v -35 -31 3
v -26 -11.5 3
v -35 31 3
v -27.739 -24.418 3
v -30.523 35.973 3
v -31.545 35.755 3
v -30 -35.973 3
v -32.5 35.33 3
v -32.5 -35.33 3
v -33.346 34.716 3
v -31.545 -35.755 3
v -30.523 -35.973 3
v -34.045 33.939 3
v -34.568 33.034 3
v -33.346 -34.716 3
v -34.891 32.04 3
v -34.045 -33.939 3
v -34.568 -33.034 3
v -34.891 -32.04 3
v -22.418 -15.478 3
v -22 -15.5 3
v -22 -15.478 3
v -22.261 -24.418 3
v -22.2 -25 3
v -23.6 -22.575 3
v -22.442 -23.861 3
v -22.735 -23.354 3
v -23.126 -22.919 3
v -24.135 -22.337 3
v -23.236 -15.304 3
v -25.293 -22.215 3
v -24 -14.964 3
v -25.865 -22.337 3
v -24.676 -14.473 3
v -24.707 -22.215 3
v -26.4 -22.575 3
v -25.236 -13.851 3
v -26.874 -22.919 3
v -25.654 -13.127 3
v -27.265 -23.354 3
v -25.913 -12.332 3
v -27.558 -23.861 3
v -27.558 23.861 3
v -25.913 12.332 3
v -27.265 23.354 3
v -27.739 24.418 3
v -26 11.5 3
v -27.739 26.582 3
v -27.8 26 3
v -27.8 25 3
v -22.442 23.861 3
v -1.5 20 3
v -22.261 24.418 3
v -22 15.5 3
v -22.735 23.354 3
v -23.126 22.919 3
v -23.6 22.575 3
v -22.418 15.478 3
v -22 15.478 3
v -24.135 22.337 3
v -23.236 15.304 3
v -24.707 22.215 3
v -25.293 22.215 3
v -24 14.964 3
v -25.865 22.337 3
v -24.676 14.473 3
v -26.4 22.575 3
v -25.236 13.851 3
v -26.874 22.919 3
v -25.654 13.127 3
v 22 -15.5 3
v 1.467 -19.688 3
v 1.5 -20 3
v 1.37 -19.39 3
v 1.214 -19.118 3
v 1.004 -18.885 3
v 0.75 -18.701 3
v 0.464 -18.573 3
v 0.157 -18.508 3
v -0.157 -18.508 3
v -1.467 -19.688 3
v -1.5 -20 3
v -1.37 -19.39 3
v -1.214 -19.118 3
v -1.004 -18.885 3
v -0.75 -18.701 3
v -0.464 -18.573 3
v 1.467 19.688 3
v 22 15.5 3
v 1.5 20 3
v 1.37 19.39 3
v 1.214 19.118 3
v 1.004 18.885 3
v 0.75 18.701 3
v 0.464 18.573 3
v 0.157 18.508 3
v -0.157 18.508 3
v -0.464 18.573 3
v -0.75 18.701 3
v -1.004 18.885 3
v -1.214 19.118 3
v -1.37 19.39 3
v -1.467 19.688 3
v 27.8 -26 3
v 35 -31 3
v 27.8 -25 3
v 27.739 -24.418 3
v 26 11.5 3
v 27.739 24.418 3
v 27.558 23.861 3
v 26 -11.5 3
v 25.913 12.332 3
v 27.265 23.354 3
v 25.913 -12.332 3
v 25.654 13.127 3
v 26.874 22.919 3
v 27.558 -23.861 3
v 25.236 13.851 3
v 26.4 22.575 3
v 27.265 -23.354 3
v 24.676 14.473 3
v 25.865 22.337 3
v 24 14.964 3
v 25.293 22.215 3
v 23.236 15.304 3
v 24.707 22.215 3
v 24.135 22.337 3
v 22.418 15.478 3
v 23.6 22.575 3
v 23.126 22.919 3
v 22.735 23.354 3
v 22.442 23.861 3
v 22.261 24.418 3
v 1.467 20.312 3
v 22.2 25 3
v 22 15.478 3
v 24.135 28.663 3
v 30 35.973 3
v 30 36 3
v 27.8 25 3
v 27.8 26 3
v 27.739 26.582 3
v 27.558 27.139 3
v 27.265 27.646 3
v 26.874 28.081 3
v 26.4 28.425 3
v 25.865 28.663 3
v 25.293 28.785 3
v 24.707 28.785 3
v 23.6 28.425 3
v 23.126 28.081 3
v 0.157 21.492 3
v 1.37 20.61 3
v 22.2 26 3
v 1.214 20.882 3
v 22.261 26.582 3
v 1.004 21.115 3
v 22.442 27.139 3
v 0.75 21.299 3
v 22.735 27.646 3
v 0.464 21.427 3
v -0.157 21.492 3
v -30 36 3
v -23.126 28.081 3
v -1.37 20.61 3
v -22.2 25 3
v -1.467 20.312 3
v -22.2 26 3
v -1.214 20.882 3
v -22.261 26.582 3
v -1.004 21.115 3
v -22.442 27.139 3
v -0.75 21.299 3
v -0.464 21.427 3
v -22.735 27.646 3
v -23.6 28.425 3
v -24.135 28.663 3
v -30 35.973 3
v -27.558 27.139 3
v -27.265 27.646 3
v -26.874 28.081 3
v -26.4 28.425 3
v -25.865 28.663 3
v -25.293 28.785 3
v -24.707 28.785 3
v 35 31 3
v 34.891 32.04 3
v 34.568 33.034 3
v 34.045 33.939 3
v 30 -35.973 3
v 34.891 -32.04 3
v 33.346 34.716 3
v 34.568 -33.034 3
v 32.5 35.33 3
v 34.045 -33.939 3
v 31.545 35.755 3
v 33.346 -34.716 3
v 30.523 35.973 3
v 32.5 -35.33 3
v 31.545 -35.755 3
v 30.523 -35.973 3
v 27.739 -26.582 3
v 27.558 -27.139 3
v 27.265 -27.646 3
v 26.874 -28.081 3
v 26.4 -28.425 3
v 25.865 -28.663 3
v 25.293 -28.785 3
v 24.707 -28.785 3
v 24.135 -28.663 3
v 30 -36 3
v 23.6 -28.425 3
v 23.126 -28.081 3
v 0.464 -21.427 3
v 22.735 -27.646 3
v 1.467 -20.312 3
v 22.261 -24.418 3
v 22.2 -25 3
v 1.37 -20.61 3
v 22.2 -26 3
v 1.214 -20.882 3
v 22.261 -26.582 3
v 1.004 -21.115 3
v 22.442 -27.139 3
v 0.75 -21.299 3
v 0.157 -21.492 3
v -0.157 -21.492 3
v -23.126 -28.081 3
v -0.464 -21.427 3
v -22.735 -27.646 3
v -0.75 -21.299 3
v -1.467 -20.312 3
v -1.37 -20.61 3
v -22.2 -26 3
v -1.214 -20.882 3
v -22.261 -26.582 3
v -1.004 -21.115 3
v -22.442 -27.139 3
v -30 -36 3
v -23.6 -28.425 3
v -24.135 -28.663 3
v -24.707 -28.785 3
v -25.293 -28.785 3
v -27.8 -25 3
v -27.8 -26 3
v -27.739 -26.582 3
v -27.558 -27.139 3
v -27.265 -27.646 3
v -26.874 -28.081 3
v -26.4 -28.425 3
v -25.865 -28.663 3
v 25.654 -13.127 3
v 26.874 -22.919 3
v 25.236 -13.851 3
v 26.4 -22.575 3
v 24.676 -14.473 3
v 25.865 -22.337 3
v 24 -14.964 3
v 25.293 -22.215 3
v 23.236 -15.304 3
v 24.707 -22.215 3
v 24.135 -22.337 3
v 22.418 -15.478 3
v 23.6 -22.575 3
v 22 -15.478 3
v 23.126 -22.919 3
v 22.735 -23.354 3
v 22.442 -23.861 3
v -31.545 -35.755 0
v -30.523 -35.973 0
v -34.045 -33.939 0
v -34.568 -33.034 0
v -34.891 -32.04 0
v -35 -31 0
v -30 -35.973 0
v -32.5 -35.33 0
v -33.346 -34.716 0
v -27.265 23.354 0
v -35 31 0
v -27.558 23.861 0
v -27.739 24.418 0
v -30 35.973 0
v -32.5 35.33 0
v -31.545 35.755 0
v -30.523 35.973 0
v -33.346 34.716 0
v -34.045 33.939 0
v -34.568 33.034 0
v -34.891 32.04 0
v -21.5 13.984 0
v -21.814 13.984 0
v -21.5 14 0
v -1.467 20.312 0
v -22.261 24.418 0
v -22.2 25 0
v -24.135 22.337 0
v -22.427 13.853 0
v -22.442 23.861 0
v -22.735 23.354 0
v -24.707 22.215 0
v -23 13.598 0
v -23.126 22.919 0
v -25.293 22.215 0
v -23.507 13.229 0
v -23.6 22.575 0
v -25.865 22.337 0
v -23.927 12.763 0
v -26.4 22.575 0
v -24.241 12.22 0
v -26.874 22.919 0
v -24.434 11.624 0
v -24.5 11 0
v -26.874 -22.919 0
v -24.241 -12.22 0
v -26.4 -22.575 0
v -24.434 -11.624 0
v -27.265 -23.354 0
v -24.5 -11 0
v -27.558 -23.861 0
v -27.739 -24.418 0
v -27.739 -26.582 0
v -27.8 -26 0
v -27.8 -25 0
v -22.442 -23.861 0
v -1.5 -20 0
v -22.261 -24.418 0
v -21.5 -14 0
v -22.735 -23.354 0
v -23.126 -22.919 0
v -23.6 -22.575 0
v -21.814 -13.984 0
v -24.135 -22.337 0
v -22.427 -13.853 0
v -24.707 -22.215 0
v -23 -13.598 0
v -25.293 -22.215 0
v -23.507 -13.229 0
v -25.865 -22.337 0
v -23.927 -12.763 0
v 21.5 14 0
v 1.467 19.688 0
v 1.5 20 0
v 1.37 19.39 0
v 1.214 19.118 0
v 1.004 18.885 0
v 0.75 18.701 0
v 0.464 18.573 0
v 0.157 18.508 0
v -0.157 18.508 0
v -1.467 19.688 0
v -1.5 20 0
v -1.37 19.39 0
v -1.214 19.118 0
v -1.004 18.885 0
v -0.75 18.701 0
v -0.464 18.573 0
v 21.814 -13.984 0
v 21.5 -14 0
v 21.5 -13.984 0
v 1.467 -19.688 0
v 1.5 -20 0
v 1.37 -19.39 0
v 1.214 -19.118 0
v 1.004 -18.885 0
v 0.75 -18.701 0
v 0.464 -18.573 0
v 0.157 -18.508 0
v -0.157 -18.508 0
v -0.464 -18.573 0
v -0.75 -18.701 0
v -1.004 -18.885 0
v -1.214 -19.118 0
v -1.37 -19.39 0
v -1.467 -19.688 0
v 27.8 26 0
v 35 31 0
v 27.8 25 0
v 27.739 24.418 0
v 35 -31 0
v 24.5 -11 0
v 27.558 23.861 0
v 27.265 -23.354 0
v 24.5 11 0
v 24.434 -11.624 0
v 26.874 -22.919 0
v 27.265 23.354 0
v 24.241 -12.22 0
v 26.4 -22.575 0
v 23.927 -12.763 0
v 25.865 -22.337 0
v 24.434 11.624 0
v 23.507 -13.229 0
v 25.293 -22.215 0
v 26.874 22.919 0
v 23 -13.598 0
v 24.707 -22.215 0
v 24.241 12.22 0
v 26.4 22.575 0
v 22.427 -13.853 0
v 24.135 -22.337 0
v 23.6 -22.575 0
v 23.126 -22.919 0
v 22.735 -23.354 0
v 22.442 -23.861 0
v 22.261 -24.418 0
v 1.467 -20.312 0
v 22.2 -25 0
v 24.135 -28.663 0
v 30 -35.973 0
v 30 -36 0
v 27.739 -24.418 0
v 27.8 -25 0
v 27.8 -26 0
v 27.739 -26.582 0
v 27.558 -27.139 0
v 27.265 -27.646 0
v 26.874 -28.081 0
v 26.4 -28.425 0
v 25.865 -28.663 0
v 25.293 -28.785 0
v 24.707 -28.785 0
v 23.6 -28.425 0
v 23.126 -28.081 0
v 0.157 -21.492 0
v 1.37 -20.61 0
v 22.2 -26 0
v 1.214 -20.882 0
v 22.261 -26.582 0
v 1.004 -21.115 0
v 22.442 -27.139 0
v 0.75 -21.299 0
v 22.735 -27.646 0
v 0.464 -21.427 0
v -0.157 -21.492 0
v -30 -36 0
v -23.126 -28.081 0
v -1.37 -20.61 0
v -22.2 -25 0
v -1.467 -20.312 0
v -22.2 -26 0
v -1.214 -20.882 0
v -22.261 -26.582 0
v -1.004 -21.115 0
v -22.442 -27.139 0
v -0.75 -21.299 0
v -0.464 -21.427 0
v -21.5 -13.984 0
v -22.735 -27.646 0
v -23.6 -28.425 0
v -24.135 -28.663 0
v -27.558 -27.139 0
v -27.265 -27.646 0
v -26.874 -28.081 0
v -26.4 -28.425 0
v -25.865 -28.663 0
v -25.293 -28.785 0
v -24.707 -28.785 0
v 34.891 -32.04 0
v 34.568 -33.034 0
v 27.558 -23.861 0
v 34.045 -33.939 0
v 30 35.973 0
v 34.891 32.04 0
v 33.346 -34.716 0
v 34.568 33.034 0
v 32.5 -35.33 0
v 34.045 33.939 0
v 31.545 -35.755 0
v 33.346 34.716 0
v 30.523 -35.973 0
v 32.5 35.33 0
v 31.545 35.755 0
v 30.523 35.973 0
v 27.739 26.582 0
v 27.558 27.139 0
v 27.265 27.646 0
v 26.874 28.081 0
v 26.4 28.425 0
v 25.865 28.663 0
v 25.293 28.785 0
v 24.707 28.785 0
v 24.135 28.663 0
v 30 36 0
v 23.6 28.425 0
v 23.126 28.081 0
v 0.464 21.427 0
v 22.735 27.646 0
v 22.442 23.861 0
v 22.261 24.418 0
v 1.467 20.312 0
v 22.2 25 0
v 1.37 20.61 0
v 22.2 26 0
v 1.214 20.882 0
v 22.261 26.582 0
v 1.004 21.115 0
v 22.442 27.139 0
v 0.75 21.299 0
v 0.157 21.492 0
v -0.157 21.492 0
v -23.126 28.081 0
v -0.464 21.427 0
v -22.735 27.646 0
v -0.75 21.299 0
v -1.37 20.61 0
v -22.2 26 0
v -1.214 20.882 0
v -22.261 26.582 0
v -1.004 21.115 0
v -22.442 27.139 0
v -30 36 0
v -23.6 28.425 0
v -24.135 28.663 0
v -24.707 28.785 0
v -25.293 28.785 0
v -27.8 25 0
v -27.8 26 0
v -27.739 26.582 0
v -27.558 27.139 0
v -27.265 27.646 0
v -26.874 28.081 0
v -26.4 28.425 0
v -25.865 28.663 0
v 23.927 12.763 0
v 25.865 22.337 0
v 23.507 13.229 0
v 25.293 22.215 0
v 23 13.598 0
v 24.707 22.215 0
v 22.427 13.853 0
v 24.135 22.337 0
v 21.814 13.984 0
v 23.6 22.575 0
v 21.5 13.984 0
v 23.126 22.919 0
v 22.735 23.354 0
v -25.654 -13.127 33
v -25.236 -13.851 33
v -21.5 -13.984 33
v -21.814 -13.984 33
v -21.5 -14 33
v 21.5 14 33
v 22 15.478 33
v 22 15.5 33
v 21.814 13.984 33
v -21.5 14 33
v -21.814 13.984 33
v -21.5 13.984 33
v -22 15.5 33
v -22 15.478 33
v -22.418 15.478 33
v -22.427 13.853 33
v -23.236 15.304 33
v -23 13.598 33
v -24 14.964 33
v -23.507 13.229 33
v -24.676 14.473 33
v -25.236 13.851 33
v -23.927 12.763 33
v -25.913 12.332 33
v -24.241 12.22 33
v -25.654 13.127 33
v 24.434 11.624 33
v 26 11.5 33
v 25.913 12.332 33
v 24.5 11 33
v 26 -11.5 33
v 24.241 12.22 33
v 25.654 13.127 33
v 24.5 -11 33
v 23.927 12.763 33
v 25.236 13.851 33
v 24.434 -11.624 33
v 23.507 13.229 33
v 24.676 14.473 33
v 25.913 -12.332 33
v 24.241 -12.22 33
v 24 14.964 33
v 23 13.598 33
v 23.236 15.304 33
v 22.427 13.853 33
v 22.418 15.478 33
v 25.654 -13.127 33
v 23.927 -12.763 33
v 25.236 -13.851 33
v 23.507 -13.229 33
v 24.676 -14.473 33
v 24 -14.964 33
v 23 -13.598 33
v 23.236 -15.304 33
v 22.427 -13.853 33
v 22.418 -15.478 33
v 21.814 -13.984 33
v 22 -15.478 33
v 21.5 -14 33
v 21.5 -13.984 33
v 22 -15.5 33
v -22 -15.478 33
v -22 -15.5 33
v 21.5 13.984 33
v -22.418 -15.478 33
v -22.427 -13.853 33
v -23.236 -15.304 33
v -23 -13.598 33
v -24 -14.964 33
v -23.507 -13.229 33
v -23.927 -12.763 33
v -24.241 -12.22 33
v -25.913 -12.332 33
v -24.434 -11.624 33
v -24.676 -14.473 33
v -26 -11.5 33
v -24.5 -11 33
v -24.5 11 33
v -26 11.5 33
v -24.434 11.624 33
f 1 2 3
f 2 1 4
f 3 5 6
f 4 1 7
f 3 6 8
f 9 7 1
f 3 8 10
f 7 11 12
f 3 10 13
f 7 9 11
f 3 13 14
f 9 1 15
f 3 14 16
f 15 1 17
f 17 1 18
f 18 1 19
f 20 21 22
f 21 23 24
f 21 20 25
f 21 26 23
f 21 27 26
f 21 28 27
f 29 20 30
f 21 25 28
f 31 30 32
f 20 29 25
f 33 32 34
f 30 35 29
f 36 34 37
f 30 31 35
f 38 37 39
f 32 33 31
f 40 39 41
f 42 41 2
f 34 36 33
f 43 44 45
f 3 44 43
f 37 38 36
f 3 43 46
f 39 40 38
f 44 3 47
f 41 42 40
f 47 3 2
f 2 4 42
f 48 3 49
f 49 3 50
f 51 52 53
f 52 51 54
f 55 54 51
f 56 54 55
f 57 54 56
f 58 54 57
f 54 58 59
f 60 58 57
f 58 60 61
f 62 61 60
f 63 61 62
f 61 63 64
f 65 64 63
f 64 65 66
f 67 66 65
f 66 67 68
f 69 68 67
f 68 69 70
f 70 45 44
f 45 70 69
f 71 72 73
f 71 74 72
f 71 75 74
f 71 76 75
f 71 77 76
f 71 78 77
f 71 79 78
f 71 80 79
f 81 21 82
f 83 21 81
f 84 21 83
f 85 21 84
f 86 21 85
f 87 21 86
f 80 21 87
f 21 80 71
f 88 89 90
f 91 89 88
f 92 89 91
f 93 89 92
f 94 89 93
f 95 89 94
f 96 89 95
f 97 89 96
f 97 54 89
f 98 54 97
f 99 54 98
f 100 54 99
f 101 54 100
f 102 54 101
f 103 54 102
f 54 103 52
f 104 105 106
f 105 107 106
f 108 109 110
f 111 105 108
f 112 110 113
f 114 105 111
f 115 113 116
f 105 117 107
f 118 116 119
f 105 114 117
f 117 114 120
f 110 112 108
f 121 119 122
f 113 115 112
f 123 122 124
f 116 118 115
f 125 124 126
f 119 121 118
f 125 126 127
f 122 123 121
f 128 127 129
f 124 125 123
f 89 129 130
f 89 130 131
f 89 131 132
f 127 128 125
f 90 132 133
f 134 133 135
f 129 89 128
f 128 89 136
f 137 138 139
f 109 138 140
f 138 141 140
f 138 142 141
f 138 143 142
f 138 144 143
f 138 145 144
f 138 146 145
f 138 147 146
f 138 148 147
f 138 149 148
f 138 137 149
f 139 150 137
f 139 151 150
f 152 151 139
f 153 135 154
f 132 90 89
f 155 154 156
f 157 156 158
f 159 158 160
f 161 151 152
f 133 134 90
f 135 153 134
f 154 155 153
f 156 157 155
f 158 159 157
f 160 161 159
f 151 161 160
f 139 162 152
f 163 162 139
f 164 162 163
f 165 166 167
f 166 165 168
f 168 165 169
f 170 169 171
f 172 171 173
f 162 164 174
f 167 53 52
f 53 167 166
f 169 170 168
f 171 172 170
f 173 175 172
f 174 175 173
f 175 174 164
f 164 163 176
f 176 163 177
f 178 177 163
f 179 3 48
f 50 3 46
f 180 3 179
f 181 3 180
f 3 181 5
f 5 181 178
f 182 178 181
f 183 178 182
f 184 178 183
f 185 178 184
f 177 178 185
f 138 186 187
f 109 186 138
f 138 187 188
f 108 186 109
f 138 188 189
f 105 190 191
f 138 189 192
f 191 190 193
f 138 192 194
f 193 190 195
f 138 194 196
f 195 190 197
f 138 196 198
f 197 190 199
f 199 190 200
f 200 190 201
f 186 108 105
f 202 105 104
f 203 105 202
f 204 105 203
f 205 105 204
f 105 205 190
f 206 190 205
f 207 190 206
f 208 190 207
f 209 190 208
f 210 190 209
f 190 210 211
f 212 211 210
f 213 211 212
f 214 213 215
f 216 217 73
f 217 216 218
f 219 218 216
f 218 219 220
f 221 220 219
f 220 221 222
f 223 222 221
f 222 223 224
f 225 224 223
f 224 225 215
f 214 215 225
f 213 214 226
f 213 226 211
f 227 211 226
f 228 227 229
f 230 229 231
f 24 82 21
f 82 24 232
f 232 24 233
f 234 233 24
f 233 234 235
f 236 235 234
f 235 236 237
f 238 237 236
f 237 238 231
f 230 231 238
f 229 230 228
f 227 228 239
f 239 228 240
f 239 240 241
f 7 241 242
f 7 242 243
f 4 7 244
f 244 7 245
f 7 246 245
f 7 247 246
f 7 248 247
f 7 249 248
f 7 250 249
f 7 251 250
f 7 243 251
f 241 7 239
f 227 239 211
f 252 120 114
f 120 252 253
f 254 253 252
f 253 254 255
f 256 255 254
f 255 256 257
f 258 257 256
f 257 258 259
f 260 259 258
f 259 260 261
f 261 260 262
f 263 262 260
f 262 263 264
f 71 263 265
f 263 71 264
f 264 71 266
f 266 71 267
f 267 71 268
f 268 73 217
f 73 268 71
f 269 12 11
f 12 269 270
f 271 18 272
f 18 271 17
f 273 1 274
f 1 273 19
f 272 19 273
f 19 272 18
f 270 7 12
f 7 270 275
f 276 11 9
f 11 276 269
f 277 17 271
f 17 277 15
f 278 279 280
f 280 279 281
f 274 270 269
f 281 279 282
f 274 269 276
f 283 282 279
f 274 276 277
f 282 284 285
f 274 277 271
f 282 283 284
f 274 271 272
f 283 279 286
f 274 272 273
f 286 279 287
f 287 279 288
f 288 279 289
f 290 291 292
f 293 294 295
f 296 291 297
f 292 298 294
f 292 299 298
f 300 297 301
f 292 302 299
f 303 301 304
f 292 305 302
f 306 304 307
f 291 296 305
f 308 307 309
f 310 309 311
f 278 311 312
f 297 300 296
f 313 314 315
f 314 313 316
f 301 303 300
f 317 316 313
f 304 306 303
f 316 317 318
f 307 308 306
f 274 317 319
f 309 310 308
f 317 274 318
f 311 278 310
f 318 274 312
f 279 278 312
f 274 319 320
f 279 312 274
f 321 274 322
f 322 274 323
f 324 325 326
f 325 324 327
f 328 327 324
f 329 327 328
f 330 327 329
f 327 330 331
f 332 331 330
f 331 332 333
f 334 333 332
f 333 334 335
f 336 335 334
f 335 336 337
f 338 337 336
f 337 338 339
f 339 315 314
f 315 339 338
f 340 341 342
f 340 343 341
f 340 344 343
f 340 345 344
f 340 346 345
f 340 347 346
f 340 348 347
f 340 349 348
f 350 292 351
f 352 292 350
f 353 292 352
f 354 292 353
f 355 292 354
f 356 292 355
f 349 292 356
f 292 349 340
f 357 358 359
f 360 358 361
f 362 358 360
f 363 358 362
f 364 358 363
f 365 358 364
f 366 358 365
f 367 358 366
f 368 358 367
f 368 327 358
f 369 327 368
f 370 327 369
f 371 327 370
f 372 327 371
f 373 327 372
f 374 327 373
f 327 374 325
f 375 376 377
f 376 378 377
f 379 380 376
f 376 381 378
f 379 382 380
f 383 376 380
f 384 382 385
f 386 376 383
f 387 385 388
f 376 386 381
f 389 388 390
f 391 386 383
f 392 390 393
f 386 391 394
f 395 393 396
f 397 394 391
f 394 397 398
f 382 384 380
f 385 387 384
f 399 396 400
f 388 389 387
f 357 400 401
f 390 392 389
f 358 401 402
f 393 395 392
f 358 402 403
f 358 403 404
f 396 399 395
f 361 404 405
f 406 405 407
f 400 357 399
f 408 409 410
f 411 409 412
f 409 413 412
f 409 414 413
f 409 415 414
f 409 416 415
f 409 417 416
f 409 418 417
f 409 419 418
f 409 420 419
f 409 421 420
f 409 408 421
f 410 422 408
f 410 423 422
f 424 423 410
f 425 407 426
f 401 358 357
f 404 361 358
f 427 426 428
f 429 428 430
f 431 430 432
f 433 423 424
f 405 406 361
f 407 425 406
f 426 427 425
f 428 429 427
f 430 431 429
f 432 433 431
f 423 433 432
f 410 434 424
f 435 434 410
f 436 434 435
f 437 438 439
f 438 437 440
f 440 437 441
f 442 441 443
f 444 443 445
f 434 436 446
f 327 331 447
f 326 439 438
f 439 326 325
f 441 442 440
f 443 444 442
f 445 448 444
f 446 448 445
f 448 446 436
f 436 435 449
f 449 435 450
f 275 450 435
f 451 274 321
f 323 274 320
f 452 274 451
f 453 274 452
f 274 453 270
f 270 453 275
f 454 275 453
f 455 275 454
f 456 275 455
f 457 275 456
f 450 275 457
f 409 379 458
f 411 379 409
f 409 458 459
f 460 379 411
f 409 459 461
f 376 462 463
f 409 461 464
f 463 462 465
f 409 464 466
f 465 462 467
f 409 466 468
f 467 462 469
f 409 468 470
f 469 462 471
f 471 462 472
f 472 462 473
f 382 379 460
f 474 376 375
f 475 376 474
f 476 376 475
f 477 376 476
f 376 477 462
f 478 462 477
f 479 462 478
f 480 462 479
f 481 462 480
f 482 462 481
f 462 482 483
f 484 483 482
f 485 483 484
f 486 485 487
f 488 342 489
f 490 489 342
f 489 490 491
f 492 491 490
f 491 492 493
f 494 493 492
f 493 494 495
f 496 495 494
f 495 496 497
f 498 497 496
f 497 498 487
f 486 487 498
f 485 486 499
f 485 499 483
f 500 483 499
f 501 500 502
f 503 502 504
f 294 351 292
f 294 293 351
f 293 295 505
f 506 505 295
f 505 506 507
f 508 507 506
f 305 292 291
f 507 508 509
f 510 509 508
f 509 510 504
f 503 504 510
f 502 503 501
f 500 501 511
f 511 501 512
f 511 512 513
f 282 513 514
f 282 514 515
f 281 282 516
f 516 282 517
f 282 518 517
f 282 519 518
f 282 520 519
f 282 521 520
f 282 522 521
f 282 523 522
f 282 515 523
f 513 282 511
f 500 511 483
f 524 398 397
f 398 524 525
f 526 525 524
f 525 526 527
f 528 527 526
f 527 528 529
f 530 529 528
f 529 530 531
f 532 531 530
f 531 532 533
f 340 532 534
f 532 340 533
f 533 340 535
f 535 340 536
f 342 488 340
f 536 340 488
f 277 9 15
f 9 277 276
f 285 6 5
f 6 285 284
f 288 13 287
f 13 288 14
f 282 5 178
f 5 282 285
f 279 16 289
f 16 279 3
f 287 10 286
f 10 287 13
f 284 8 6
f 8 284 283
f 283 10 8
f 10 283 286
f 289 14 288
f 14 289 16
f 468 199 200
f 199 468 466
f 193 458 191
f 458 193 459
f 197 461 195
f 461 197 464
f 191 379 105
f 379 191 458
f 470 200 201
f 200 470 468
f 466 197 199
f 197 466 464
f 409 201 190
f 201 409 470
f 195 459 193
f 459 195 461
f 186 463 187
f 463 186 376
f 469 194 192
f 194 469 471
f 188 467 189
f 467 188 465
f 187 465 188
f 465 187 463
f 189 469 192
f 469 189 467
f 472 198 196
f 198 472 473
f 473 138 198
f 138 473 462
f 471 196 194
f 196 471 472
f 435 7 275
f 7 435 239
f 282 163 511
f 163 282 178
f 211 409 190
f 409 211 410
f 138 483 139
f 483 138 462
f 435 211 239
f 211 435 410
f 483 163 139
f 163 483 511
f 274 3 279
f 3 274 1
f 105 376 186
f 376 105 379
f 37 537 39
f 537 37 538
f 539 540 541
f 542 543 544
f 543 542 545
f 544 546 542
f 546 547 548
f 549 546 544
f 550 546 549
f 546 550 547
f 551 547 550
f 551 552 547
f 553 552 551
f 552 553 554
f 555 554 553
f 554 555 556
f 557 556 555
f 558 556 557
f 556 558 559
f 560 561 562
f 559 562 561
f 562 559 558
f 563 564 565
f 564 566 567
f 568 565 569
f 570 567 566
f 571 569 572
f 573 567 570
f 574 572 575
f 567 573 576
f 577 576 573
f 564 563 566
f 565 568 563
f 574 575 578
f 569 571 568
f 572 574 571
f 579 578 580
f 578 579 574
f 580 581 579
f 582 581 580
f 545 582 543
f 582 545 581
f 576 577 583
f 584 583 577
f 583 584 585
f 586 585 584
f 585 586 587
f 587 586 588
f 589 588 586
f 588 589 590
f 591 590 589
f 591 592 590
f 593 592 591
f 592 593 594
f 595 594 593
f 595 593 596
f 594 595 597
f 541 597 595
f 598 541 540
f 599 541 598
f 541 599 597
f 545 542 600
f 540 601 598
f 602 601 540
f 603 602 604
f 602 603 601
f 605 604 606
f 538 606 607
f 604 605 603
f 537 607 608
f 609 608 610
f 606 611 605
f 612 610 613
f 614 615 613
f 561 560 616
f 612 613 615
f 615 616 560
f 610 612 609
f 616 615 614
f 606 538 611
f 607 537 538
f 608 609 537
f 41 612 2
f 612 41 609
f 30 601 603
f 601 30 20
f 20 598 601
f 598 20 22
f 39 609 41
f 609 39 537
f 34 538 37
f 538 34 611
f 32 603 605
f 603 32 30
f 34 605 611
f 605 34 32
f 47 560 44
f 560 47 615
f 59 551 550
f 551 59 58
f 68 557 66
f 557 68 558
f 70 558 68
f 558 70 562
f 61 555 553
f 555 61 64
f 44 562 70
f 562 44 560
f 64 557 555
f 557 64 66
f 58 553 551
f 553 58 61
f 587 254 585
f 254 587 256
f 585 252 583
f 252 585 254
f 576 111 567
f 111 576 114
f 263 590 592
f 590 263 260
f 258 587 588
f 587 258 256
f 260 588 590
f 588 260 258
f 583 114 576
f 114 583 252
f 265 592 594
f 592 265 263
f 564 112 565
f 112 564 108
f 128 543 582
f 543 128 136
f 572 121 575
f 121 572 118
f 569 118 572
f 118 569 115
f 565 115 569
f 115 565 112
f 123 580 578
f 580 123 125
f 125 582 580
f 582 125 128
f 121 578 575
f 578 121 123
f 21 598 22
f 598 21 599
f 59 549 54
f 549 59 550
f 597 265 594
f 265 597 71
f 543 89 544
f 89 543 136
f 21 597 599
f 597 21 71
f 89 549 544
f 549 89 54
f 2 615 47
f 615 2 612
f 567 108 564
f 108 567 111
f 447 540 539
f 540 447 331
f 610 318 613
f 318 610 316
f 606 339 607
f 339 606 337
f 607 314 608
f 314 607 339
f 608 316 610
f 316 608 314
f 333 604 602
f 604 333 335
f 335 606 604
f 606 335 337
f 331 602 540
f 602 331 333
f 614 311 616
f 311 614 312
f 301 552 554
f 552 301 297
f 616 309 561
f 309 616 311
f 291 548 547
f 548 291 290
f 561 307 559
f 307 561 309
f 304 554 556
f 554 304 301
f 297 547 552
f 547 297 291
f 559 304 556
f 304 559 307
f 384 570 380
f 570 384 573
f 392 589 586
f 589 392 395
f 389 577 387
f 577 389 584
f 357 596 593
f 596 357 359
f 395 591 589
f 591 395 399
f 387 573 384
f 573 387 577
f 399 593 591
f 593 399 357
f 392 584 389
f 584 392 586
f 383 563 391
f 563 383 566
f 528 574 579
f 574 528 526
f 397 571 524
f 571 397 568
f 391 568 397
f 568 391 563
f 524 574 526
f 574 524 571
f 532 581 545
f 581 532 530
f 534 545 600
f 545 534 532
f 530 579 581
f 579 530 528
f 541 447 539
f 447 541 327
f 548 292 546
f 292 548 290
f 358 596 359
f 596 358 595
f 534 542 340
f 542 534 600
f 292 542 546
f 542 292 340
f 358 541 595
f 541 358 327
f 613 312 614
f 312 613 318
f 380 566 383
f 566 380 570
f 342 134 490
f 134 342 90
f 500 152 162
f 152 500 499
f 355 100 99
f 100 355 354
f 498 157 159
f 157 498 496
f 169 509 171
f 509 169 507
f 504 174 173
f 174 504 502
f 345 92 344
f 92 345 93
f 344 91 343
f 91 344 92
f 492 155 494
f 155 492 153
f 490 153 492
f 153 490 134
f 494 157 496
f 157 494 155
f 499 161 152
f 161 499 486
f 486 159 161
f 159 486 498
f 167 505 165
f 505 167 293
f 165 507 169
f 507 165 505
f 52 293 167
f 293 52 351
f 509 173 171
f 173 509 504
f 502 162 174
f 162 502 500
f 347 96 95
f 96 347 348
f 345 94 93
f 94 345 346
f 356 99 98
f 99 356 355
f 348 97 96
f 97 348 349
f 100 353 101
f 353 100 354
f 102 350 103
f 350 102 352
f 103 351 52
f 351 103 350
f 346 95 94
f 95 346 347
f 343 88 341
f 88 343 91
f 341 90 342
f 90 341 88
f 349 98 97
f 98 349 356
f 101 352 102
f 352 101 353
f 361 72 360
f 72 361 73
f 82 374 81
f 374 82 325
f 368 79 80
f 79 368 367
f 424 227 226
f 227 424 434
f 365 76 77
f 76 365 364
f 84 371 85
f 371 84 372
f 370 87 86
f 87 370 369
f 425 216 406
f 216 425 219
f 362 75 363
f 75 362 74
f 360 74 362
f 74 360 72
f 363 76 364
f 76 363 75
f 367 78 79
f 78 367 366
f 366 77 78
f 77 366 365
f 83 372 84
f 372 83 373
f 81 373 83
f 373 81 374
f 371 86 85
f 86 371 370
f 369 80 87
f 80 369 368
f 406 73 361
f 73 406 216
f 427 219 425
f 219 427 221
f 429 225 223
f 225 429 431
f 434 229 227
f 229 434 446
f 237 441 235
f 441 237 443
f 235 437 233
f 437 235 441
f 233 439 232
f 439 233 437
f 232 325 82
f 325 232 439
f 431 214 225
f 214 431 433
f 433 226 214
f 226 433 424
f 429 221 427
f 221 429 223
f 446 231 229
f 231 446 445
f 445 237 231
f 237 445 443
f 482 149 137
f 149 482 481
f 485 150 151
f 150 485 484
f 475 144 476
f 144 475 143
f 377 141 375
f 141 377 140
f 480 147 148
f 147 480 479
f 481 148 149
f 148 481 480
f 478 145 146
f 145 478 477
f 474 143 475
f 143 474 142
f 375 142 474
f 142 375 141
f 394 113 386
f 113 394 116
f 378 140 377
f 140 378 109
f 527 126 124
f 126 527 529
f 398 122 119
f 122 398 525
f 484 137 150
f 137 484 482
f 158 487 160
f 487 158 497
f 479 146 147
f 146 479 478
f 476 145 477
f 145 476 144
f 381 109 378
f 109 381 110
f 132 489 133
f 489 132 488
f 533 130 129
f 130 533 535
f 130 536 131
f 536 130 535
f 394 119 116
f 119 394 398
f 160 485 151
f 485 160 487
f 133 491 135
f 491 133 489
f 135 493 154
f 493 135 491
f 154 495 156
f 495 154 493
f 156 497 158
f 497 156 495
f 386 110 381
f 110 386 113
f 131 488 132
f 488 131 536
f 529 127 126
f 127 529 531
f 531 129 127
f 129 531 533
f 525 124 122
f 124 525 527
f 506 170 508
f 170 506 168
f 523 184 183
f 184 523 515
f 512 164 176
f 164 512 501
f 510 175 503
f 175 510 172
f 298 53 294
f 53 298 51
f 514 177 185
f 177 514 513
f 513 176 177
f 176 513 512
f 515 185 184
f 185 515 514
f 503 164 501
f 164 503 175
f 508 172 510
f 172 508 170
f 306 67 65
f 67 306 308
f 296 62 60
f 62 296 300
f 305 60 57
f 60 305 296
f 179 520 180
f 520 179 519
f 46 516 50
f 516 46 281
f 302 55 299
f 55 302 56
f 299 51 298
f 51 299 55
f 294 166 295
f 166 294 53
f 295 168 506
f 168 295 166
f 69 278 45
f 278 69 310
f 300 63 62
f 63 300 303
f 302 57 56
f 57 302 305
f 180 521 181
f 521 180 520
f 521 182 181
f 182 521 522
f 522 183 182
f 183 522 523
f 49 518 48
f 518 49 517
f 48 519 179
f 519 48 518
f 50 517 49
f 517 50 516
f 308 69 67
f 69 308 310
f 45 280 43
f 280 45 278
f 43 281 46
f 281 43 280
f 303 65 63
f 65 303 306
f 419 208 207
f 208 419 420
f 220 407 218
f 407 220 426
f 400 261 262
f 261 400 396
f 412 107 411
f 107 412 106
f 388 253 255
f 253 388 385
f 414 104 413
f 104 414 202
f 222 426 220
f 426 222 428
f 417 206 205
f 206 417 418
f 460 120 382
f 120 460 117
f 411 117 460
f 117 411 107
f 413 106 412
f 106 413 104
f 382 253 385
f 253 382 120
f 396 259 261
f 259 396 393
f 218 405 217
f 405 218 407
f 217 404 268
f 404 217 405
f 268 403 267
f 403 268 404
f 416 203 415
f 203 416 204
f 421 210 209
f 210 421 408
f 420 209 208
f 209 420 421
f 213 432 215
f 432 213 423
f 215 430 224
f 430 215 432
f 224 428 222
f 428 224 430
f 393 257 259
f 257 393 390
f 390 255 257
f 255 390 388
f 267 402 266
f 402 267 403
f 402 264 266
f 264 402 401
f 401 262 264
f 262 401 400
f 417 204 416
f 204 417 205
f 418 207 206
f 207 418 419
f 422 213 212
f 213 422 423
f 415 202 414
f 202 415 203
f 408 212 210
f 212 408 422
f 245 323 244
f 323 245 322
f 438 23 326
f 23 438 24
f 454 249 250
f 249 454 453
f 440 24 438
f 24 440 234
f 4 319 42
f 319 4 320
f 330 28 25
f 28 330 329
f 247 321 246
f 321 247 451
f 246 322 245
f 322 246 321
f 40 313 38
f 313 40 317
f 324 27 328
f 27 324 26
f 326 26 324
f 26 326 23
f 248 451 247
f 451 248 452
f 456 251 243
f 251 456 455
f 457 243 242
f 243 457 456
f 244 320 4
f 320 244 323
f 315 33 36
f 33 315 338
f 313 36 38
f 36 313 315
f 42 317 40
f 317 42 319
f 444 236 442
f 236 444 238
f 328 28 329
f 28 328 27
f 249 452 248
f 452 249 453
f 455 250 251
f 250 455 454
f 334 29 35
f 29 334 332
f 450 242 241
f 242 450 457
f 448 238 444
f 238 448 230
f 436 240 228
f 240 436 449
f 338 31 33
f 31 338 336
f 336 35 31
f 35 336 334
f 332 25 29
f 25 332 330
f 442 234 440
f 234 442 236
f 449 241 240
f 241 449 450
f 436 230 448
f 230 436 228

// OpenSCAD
// file: roundedBox.scad
// size is a vector [x, y, z], always draws from center!
module roundedBox(size, radius=5, sidesonly=true)
{
	rot = [ [0,0,0], [90,0,90], [90,90,0] ];
   	if (sidesonly)
	{
   		cube(size - [2*radius,0,0], true);
      	cube(size - [0,2*radius,0], true);
      	for (x = [radius-size[0]/2, -radius+size[0]/2],
      	     y = [radius-size[1]/2, -radius+size[1]/2])
		{
      		translate([x,y,0])
				cylinder(r=radius, h=size[2], center=true);
        }
    }
	else
	{
   		cube([size[0], size[1]-radius*2, size[2]-radius*2], 
			 center=true);
		cube([size[0]-radius*2, size[1], size[2]-radius*2],
			 center=true);
        cube([size[0]-radius*2, size[1]-radius*2, size[2]],
			 center=true);

        for (axis = [0:2])
		{
      		for (x = [radius-size[axis]/2, -radius+size[axis]/2],
                 y = [ radius-size[(axis+1)%3]/2, 
					  -radius+size[(axis+1)%3]/2])
			{
         		rotate(rot[axis]) 
				translate([x,y,0]) 
                cylinder(h=size[(axis+2)%3]-2*radius, 
					     r=radius, center=true);
			}
		}
   		for (x = [radius-size[0]/2, -radius+size[0]/2],
           y = [radius-size[1]/2, -radius+size[1]/2],
           z = [radius-size[2]/2, -radius+size[2]/2])
		{
      		translate([x,y,z])
      		sphere(radius);
        }
	}
}
// file: configuration.scad
// Configuration file for the Kumu-3D printer.
//
// DO NOT SLICE THIS.
//
// This work is licensed under a Creative Commons Attribution-ShareAlike 4.0
// International License.
// Visit:  http://creativecommons.org/licenses/by-sa/4.0/
//
// Haydn Huntley
// haydn.huntley@gmail.com

// All measurements in mm.
smidge            = 0.1;
mmPerInch         = 25.4;
m3Radius          = (3.0 + 0.2) / 2;
m3LooseRadius     = m3Radius + 0.2;
m3TightRadius     = m3Radius - 0.2;
m3HeadHeight      = 3.0 + 0.2;
m3HeadRadius      = (5.4 + 0.2) / 2;
m3LooseHeadRadius = m3HeadRadius + 0.2;
m3NutRadius       = (6.25 + 0.75) / 2;
m3LooseNutRadius  = (m3NutRadius + 0.1);
m3TightNutRadius  = (m3NutRadius - 0.1);
m3NutHeight		  = 2.4;
m3NylockNutHeight = 4.0;
m3LooseNutHeight  = 2.4+0.2;
nozzleWidth		  = 0.5;
extrusionWidth    = 20.0;
copperPipeRadius  = 16.0/2 - smidge;
m5Radius          = (5.0 + 0.2) / 2;
m5LooseRadius     = m5Radius + 0.2;
m5TightRadius     = m5Radius - 0.2;
m5HeadHeight      = 5.6;		// For M5 SHCS
m5LooseHeadRadius = 8.6 / 2;	// For M5 SHCS
m5ButtonHeadRadius     = (9.5 + 0.3) / 2;  // For M5 button head
m5ButtonHeadHeight     = 2.5 + 0.5;
m5LowProfileHeadRadius = (9.5 + 0.3) / 2;  // For M5 low profile
m5LowProfileHeadHeight = 1.5 + 0.5;
m5x8Height        = 8;        // For M5x8
m5LooseNutRadius  = (8.9 + 0.4) / 2;
m5PlainNutHeight  = (3.8 + 0.2);
m5LockNutHeight   = (4.9 + 0.3);
m4LooseNutRadius  = (8.0 + 0.3) / 2;
m4NutHeight       = (3.2 + 0.3);

lowerFrameHeight    = 3 * extrusionWidth + 12;
ballJointSeparation = 48.0;
// main file
// Fuse/plug holder.
//
// This is my favorite lit switch, it includes the fuse and is the least
// expensive:
//
// http://www.robotdigg.com/product/744/AC-rocker-switch-power-inlet-socket-w/-fuse
//
//
// It also works with this lit switch from Amazon:
//
// http://www.amazon.com/uxcell%C2%AE-IEC320-Inlet-Switch-Socket/dp/B00N41D5Z4
//
// uxcell 2 Pcs IEC320 C14 Inlet Green Lamp Switch Power Socket AC 250V
//
//
// Or this one:
//
// http://www.amazon.com/gp/product/B00ME5YAPK/ref=oh_aui_detailpage_o03_s01
//
// URBEST Inlet Module Plug Fuse Switch Male Power Socket 10A 250V 3 Pin
// IEC320 C14
//
//
// Note: the above two switches do *not* include the fuse!
//
// Here are the fuses:
//
// http://www.amazon.com/PODOY-Qty-Fast-Blow-GMA10A-GMA10/dp/B004HLYUE0
//
// PODOY 5 Qty. GMA 10A Fast-Blow Fuse 10 Amp 250v GMA10A, GMA10


$fn=360/12;

include <configuration.scad>
include <roundedBox.scad>;


// All measurements in mm.
xBody				   = 70;
yBody				   = lowerFrameHeight;
zBody				   =  3;
zTube				   = 30;
xOpening               = 47+2;
yOpening               = 27+1;
mountingHoleSeparation = 40;


module fusePlugHolder()
{
	translate([0, 0, zBody/2])
	difference()
	{
		union()
		{
			// Make the body.
			roundedBox([xBody,
						yBody,
						zBody], 5, true);

			translate([0, 0, zTube/2])
			roundedBox([xOpening+3,
						yOpening+3,
						zBody+zTube], 4, true);
		}

		// Remove the center, where the fuse/plug holder slides in.
		translate([0, 0, zTube/2])
		roundedBox([xOpening,
					yOpening,
					zBody+zTube+smidge], 3, true);

		// Remove two holes to use for mounting the fuse/plug holder.
		makeTightHole(0,  mountingHoleSeparation/2);
		makeTightHole(0, -mountingHoleSeparation/2);

		// Remove four M5x8 holes for mounting
		m5x8Slot( xBody/2-extrusionWidth/2,  yBody/2 - extrusionWidth/2);
		m5x8Slot(-xBody/2+extrusionWidth/2,  yBody/2 - extrusionWidth/2);
		m5x8Slot( xBody/2-extrusionWidth/2, -yBody/2 + extrusionWidth/2);
		m5x8Slot(-xBody/2+extrusionWidth/2, -yBody/2 + extrusionWidth/2);
	}
}


module m5x8Slot(x, y)
{
	offset = 1.0;
	hull()
	{
		translate([x, y, 0])
		cylinder(r=m5LooseRadius, h=zBody+smidge, center=true);
		if (y < 0)
			translate([x, y+offset, 0])
			cylinder(r=m5LooseRadius, h=zBody+smidge, center=true);
		if (y > 0)
			translate([x, y-offset, 0])
			cylinder(r=m5LooseRadius, h=zBody+smidge, center=true);
	}
}


module makeTightHole(x, y)
{
	translate([x, y, 0])
	cylinder(r=m3Radius-smidge, h=zBody+smidge, center=true);
}


fusePlugHolder();
